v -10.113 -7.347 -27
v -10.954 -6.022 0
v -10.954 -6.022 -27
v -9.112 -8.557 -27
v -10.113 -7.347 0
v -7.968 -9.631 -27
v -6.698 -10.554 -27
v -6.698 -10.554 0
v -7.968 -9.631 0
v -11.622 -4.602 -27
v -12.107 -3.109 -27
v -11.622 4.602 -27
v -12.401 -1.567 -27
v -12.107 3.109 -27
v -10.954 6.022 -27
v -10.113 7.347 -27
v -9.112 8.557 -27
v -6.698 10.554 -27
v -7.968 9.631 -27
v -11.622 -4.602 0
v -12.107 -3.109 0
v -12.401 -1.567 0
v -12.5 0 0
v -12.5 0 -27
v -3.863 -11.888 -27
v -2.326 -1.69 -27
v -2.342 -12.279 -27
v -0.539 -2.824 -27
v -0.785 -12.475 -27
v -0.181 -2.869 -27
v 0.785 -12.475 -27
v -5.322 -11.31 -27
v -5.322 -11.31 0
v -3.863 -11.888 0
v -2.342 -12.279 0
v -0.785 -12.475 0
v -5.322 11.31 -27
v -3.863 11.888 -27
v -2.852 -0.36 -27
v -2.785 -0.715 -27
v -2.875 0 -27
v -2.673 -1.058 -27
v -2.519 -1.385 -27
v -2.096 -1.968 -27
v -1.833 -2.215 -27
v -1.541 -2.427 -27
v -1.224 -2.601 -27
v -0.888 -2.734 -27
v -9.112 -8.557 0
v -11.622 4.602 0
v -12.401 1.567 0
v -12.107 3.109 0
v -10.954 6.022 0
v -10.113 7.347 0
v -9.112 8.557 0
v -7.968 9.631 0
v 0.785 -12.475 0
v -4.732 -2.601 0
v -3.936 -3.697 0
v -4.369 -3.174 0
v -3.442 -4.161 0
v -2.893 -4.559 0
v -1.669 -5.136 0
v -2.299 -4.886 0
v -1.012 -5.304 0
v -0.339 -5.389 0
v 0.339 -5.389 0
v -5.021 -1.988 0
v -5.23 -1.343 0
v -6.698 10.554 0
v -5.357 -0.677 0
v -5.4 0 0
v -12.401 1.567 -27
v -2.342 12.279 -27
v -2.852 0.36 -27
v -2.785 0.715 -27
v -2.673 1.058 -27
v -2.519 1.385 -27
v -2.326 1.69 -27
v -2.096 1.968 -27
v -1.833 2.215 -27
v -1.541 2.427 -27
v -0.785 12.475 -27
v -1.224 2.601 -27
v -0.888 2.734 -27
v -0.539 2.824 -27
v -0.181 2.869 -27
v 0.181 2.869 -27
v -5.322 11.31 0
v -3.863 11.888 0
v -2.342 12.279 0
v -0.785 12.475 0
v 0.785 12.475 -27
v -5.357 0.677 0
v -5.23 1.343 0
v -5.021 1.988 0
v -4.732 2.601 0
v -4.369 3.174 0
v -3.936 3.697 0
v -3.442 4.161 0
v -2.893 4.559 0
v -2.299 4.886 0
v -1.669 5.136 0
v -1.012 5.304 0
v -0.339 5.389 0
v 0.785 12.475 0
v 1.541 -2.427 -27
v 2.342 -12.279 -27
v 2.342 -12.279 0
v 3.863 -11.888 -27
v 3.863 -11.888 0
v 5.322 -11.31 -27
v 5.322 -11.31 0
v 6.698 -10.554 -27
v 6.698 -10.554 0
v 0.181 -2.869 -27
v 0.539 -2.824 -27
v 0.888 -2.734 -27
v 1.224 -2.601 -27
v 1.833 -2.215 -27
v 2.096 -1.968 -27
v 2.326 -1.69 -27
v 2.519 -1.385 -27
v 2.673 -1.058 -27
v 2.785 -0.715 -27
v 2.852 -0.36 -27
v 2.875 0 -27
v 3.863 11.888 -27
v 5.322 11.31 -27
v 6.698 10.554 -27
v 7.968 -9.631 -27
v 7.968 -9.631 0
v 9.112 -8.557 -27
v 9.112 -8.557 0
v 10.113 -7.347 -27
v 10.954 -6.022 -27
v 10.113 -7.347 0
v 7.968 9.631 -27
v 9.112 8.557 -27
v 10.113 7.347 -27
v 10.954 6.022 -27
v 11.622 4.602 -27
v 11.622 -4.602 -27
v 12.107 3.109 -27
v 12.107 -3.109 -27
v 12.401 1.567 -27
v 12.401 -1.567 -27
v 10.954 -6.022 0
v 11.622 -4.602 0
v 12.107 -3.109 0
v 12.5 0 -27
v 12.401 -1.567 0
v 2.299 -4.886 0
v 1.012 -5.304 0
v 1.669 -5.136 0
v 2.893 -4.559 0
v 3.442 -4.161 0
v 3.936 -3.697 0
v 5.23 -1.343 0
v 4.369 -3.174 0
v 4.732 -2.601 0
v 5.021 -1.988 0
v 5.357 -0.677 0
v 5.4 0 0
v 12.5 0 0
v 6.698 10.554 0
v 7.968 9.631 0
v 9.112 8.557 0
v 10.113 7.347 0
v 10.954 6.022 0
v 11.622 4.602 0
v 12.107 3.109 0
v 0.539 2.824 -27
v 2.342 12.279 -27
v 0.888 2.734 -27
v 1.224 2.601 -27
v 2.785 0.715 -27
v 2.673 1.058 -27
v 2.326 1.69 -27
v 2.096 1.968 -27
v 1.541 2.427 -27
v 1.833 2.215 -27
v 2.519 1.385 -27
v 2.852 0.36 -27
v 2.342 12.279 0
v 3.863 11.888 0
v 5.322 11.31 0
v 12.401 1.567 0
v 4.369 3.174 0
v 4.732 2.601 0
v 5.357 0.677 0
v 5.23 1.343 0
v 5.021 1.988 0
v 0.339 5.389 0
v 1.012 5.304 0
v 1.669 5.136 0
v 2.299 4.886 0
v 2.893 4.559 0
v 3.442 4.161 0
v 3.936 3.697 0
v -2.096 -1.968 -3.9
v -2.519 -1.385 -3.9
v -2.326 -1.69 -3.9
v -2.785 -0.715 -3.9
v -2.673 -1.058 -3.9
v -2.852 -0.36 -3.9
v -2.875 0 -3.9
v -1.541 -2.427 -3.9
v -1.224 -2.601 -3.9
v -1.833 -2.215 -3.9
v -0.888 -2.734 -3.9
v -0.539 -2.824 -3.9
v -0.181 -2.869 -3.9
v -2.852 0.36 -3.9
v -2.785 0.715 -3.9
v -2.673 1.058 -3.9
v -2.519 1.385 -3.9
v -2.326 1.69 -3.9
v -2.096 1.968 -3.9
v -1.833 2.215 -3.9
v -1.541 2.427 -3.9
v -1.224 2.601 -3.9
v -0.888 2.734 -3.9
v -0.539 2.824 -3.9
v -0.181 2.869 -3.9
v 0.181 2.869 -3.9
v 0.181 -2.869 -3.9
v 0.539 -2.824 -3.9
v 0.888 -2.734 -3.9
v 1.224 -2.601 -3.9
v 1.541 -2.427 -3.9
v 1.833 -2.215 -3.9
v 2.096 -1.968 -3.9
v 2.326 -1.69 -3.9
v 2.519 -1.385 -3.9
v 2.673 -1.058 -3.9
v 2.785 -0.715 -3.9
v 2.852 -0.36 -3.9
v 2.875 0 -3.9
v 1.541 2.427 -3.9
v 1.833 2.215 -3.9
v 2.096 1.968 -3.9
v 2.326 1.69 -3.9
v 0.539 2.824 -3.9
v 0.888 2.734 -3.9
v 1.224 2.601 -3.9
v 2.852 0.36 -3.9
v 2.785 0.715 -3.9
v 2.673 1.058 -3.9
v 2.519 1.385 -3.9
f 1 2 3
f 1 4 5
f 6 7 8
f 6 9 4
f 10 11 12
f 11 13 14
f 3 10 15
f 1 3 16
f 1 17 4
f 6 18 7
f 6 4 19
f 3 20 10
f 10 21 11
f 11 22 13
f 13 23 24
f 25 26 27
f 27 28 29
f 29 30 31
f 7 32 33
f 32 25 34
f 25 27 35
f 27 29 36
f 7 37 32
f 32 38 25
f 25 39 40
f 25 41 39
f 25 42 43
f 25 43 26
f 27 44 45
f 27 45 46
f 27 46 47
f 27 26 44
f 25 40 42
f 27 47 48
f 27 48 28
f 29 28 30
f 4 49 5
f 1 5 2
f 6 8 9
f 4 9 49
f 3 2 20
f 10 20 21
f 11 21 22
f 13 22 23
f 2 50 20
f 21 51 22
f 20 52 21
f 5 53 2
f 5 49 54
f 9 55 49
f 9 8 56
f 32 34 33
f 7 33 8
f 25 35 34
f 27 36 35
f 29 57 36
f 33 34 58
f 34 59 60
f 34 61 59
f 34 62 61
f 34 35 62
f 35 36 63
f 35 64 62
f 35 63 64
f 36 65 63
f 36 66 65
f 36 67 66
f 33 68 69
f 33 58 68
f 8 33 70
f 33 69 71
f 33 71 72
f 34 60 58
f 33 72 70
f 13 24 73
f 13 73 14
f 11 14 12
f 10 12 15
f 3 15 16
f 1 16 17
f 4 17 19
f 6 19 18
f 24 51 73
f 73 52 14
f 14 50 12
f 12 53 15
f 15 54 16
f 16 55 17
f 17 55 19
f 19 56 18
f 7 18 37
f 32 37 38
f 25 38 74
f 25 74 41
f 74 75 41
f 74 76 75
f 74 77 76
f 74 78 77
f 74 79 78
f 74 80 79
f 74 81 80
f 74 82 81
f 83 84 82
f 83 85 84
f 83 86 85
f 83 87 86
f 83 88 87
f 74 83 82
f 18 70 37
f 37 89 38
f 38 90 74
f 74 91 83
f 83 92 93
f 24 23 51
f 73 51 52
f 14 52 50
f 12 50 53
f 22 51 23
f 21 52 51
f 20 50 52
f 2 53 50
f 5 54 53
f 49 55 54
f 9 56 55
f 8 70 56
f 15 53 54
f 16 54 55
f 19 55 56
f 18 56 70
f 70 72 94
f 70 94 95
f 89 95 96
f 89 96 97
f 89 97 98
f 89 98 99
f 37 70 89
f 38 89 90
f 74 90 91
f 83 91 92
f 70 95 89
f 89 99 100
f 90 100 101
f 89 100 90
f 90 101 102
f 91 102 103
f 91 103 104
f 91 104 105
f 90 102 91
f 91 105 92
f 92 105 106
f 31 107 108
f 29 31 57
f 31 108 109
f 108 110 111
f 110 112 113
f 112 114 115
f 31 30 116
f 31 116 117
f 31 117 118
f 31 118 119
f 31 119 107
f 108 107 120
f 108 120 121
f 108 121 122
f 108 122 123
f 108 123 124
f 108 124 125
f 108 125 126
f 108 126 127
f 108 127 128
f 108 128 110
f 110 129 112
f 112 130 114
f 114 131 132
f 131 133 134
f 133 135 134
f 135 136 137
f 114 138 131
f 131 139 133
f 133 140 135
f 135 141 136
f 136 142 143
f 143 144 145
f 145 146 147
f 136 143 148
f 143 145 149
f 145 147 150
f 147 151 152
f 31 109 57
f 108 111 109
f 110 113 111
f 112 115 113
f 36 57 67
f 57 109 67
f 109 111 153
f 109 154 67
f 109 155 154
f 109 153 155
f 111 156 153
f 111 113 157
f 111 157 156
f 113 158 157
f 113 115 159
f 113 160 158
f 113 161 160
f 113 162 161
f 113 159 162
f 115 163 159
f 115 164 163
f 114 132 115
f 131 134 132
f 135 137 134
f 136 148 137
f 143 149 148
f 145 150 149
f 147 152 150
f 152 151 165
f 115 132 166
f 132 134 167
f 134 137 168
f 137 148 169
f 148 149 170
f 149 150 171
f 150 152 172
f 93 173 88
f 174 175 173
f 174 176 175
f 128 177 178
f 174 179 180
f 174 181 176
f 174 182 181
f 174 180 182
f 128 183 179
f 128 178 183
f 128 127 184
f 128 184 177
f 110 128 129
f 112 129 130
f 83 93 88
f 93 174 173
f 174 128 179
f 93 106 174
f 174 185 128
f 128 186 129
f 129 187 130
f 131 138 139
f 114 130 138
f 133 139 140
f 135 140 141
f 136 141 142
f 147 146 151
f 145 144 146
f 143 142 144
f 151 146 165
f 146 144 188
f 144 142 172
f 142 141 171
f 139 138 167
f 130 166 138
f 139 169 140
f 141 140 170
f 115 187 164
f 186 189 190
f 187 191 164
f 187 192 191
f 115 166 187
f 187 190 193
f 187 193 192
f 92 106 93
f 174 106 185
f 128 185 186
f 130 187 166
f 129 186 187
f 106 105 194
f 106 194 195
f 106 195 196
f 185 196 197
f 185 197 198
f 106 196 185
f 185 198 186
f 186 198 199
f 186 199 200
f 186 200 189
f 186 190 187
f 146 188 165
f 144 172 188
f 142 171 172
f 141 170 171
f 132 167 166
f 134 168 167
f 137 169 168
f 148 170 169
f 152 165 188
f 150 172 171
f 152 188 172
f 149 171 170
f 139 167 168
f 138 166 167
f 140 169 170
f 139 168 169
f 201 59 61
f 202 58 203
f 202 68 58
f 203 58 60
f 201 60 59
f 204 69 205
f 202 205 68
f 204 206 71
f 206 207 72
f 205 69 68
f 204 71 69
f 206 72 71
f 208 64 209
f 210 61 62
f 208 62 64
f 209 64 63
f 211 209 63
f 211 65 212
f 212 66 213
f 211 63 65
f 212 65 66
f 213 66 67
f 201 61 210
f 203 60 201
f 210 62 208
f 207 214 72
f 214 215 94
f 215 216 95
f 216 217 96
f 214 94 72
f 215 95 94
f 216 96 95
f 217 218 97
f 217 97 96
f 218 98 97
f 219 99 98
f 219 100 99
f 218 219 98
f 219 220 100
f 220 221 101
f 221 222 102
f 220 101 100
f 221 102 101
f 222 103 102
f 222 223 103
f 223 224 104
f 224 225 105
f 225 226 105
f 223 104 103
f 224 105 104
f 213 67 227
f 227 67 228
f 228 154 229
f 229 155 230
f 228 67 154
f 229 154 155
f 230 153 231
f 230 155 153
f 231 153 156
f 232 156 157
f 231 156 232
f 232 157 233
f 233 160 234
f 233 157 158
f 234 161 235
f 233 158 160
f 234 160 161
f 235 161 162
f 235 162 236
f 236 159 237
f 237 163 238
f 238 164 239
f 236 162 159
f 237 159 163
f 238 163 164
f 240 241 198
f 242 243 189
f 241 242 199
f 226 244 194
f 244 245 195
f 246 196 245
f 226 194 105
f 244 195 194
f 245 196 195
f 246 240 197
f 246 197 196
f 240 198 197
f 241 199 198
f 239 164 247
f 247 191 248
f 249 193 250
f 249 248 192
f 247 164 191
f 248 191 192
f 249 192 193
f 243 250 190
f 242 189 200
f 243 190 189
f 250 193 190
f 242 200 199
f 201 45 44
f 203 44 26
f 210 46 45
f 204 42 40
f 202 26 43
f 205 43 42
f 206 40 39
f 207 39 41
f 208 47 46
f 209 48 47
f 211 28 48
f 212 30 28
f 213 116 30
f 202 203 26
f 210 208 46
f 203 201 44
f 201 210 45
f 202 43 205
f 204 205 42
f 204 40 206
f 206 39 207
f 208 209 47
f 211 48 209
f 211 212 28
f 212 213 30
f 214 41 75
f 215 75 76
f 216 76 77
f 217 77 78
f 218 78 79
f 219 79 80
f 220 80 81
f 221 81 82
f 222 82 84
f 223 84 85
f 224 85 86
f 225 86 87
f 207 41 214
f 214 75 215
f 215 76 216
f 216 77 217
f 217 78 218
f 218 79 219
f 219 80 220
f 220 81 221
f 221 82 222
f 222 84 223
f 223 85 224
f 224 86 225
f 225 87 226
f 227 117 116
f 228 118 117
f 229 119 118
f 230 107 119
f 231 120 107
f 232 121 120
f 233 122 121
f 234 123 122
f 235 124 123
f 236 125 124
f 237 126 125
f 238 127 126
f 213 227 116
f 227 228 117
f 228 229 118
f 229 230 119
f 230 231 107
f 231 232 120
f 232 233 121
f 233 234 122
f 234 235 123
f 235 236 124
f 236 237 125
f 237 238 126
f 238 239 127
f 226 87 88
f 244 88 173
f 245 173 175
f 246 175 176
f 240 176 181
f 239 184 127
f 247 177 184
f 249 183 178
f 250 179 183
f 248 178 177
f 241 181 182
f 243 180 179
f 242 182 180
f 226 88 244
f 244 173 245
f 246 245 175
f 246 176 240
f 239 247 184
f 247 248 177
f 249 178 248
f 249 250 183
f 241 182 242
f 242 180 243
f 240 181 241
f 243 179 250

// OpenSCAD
$fn = 50;

difference() {
	union() {
		translate(v = [0, 0, -27.0]) {
			cylinder(h = 27, r = 12.5);
		}
		#translate(v = [0, 0, -30.0]) {
			cylinder(h = 30, r = 2.875);
		}
	}
	union() {
		translate(v = [0, 0, 0]) {
			rotate(a = [0, 0, 0]) {
				difference() {
					union() {
						translate(v = [0, 0, -30.0]) {
							cylinder(h = 30, r = 2.6);
						}
						translate(v = [0, 0, -3.9]) {
							cylinder(h = 3.9, r1 = 2.875, r2 = 5.4);
						}
						translate(v = [0, 0, -30.0]) {
							cylinder(h = 30, r = 2.875);
						}
						translate(v = [0, 0, -30.0]) {
							cylinder(h = 30, r = 2.6);
						}
					}
					union();
				}
			}
		}
	}
}
